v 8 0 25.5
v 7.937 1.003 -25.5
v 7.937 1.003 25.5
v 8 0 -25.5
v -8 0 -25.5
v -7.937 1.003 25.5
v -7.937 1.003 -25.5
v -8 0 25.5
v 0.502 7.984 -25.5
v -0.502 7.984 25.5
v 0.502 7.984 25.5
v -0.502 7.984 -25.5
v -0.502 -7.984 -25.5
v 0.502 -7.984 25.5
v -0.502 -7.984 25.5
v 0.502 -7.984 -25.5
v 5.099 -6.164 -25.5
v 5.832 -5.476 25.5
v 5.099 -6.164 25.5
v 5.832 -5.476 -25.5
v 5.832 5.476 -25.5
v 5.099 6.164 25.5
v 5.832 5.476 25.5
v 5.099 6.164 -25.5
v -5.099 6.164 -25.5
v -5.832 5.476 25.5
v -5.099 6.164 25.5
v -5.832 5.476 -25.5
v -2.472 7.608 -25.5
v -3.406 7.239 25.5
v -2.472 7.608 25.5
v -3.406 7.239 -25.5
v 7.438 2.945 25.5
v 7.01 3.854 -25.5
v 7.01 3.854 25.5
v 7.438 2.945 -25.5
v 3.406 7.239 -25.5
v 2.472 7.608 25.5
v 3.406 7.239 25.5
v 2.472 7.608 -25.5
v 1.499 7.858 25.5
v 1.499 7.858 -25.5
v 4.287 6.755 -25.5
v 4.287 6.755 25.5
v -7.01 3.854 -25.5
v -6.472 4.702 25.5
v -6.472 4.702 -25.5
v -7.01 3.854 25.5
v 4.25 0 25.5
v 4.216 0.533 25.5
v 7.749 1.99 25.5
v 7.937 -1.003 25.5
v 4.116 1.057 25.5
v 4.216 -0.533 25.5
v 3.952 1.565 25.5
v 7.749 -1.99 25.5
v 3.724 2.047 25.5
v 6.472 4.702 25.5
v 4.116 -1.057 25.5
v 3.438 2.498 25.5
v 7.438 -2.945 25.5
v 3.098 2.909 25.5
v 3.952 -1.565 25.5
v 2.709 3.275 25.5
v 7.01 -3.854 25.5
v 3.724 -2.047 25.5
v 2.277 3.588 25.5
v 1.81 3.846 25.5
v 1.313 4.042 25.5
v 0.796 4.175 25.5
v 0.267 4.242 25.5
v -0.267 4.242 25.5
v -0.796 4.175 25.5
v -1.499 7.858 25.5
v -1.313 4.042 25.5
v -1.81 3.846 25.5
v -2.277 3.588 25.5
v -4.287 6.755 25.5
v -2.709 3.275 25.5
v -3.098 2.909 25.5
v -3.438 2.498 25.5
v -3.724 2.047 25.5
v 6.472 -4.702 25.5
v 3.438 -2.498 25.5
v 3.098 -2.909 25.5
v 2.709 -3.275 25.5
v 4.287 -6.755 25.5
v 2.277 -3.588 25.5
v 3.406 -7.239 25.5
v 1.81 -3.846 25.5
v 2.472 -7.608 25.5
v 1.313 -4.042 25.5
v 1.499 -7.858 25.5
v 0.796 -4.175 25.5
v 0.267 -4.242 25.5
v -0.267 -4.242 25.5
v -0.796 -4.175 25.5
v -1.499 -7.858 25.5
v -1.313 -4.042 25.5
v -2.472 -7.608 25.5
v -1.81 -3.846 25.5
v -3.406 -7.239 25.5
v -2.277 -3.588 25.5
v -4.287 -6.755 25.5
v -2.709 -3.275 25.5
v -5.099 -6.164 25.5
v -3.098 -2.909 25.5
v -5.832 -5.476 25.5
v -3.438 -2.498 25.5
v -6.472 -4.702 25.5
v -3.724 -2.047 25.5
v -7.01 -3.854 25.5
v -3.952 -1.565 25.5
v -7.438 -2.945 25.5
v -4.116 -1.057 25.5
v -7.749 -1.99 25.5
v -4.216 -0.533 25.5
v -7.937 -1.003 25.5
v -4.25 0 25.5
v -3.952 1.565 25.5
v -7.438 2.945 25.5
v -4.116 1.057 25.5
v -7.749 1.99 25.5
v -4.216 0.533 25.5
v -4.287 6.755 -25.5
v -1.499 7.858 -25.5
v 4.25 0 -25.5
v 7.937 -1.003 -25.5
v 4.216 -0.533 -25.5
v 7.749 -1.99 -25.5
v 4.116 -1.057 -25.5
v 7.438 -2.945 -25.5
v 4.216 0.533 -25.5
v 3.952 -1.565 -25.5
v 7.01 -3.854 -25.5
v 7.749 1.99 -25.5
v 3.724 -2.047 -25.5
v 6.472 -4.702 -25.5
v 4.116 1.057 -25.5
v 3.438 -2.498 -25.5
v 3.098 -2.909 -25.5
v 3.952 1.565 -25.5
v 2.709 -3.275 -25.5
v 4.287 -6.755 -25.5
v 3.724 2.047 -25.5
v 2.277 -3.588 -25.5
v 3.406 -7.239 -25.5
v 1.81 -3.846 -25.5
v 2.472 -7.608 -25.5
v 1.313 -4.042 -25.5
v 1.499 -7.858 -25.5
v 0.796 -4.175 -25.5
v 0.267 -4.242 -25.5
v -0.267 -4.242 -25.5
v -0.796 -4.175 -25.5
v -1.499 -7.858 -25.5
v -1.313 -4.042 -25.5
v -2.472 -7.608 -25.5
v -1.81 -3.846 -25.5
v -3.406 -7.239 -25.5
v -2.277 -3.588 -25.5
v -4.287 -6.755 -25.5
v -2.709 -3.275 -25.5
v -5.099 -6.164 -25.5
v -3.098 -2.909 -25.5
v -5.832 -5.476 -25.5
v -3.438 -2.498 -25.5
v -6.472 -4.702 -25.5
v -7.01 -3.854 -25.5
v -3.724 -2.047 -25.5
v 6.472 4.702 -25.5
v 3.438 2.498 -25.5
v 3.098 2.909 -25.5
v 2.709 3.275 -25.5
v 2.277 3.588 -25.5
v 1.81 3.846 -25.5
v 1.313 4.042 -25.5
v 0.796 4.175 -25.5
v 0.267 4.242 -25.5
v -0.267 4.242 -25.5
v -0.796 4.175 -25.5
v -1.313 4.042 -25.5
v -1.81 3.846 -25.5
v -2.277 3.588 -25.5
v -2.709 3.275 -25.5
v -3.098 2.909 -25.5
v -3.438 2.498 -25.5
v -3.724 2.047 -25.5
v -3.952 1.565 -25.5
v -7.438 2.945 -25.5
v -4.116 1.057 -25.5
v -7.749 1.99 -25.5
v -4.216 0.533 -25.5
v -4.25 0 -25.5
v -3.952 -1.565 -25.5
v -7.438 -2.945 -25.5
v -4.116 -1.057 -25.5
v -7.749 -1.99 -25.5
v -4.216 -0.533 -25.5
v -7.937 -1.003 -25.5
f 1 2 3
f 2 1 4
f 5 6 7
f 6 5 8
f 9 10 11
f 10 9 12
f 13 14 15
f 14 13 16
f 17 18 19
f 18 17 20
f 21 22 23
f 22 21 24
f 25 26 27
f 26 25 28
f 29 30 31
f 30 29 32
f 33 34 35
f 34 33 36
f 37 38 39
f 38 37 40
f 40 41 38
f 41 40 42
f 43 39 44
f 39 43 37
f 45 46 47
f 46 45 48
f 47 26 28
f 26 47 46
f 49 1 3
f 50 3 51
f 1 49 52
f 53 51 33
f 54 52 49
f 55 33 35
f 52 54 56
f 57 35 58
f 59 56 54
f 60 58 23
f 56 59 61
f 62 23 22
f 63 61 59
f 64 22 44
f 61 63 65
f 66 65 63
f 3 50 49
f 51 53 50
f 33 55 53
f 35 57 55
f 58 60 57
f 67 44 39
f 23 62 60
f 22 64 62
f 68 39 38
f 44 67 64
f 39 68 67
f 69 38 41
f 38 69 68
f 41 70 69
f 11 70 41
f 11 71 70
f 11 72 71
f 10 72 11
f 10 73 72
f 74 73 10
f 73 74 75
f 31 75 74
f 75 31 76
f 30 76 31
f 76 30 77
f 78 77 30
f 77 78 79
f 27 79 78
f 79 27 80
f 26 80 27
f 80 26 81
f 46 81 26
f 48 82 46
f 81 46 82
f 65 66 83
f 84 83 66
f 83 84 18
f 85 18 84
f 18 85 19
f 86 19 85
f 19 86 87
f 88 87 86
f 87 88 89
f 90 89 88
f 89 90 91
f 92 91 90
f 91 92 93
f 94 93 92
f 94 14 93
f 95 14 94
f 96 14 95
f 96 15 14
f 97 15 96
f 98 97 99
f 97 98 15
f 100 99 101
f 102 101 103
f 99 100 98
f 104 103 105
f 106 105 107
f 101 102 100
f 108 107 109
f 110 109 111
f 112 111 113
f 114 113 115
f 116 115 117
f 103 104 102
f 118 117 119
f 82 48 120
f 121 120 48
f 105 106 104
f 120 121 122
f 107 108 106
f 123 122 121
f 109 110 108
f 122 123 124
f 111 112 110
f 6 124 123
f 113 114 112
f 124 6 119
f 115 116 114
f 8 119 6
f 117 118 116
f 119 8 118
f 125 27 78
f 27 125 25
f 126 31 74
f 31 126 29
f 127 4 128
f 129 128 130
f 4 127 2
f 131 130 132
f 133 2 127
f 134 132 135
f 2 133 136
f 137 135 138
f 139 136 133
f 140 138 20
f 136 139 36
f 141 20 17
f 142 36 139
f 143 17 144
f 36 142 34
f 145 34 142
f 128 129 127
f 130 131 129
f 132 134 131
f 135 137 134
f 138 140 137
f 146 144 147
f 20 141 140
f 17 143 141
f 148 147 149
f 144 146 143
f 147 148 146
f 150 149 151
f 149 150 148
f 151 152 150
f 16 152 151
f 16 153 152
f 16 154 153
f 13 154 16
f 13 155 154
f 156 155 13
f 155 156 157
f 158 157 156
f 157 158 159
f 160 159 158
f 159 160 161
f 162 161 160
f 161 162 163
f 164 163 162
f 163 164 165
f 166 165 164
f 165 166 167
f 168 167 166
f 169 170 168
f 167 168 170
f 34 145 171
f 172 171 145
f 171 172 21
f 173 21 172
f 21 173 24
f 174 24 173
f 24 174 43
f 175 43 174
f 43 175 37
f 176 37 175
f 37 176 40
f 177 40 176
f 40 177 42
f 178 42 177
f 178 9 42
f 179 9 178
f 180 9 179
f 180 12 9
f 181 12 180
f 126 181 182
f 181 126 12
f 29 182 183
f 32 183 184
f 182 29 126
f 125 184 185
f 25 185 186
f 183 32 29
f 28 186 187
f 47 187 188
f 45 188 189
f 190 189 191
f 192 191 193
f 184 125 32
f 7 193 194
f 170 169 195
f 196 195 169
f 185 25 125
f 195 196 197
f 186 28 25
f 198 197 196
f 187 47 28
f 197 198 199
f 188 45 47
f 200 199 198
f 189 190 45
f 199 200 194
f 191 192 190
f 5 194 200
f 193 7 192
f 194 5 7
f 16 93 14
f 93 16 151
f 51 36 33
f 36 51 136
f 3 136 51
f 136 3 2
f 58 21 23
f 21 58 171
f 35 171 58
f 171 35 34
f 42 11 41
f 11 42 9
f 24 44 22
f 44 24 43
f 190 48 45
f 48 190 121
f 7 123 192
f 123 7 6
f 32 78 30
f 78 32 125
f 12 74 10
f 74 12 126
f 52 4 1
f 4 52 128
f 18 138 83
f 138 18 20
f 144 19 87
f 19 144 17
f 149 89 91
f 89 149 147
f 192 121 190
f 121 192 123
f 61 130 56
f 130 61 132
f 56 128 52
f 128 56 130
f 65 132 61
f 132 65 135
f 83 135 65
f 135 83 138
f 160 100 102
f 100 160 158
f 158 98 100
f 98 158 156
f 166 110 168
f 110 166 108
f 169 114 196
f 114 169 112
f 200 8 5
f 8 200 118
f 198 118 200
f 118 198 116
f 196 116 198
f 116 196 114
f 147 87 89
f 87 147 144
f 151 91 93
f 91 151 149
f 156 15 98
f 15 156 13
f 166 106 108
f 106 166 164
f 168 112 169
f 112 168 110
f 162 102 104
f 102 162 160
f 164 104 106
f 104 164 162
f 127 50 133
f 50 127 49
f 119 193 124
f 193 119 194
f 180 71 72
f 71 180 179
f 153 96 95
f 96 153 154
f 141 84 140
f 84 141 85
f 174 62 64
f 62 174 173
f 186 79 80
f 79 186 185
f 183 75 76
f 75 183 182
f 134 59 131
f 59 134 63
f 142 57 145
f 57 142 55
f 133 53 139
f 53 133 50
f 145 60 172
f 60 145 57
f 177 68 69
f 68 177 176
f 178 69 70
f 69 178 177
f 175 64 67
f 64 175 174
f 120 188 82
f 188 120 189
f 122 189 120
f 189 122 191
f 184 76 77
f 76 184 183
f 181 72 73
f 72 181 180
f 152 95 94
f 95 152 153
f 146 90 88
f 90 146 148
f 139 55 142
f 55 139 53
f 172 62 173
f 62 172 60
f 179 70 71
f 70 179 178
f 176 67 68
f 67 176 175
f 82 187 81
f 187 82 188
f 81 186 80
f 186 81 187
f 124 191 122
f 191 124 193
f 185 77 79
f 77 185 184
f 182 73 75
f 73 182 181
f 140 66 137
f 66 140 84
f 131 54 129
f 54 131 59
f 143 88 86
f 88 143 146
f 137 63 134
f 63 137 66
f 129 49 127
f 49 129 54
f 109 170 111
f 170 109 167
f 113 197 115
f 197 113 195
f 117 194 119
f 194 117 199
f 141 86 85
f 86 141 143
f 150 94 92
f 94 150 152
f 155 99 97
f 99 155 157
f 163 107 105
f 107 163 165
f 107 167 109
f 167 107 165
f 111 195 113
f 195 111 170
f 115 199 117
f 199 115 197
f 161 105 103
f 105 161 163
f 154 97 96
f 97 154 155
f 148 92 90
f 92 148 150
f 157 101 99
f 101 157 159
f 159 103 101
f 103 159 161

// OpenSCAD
$fn = 50;


difference() {
	union() {
		translate(v = [0, 0, -25.5000000000]) {
			cylinder(h = 51, r = 8.0000000000);
		}
	}
	union() {
		translate(v = [0, 0, -100.0000000000]) {
			cylinder(h = 200, r = 4.2500000000);
		}
	}
}
